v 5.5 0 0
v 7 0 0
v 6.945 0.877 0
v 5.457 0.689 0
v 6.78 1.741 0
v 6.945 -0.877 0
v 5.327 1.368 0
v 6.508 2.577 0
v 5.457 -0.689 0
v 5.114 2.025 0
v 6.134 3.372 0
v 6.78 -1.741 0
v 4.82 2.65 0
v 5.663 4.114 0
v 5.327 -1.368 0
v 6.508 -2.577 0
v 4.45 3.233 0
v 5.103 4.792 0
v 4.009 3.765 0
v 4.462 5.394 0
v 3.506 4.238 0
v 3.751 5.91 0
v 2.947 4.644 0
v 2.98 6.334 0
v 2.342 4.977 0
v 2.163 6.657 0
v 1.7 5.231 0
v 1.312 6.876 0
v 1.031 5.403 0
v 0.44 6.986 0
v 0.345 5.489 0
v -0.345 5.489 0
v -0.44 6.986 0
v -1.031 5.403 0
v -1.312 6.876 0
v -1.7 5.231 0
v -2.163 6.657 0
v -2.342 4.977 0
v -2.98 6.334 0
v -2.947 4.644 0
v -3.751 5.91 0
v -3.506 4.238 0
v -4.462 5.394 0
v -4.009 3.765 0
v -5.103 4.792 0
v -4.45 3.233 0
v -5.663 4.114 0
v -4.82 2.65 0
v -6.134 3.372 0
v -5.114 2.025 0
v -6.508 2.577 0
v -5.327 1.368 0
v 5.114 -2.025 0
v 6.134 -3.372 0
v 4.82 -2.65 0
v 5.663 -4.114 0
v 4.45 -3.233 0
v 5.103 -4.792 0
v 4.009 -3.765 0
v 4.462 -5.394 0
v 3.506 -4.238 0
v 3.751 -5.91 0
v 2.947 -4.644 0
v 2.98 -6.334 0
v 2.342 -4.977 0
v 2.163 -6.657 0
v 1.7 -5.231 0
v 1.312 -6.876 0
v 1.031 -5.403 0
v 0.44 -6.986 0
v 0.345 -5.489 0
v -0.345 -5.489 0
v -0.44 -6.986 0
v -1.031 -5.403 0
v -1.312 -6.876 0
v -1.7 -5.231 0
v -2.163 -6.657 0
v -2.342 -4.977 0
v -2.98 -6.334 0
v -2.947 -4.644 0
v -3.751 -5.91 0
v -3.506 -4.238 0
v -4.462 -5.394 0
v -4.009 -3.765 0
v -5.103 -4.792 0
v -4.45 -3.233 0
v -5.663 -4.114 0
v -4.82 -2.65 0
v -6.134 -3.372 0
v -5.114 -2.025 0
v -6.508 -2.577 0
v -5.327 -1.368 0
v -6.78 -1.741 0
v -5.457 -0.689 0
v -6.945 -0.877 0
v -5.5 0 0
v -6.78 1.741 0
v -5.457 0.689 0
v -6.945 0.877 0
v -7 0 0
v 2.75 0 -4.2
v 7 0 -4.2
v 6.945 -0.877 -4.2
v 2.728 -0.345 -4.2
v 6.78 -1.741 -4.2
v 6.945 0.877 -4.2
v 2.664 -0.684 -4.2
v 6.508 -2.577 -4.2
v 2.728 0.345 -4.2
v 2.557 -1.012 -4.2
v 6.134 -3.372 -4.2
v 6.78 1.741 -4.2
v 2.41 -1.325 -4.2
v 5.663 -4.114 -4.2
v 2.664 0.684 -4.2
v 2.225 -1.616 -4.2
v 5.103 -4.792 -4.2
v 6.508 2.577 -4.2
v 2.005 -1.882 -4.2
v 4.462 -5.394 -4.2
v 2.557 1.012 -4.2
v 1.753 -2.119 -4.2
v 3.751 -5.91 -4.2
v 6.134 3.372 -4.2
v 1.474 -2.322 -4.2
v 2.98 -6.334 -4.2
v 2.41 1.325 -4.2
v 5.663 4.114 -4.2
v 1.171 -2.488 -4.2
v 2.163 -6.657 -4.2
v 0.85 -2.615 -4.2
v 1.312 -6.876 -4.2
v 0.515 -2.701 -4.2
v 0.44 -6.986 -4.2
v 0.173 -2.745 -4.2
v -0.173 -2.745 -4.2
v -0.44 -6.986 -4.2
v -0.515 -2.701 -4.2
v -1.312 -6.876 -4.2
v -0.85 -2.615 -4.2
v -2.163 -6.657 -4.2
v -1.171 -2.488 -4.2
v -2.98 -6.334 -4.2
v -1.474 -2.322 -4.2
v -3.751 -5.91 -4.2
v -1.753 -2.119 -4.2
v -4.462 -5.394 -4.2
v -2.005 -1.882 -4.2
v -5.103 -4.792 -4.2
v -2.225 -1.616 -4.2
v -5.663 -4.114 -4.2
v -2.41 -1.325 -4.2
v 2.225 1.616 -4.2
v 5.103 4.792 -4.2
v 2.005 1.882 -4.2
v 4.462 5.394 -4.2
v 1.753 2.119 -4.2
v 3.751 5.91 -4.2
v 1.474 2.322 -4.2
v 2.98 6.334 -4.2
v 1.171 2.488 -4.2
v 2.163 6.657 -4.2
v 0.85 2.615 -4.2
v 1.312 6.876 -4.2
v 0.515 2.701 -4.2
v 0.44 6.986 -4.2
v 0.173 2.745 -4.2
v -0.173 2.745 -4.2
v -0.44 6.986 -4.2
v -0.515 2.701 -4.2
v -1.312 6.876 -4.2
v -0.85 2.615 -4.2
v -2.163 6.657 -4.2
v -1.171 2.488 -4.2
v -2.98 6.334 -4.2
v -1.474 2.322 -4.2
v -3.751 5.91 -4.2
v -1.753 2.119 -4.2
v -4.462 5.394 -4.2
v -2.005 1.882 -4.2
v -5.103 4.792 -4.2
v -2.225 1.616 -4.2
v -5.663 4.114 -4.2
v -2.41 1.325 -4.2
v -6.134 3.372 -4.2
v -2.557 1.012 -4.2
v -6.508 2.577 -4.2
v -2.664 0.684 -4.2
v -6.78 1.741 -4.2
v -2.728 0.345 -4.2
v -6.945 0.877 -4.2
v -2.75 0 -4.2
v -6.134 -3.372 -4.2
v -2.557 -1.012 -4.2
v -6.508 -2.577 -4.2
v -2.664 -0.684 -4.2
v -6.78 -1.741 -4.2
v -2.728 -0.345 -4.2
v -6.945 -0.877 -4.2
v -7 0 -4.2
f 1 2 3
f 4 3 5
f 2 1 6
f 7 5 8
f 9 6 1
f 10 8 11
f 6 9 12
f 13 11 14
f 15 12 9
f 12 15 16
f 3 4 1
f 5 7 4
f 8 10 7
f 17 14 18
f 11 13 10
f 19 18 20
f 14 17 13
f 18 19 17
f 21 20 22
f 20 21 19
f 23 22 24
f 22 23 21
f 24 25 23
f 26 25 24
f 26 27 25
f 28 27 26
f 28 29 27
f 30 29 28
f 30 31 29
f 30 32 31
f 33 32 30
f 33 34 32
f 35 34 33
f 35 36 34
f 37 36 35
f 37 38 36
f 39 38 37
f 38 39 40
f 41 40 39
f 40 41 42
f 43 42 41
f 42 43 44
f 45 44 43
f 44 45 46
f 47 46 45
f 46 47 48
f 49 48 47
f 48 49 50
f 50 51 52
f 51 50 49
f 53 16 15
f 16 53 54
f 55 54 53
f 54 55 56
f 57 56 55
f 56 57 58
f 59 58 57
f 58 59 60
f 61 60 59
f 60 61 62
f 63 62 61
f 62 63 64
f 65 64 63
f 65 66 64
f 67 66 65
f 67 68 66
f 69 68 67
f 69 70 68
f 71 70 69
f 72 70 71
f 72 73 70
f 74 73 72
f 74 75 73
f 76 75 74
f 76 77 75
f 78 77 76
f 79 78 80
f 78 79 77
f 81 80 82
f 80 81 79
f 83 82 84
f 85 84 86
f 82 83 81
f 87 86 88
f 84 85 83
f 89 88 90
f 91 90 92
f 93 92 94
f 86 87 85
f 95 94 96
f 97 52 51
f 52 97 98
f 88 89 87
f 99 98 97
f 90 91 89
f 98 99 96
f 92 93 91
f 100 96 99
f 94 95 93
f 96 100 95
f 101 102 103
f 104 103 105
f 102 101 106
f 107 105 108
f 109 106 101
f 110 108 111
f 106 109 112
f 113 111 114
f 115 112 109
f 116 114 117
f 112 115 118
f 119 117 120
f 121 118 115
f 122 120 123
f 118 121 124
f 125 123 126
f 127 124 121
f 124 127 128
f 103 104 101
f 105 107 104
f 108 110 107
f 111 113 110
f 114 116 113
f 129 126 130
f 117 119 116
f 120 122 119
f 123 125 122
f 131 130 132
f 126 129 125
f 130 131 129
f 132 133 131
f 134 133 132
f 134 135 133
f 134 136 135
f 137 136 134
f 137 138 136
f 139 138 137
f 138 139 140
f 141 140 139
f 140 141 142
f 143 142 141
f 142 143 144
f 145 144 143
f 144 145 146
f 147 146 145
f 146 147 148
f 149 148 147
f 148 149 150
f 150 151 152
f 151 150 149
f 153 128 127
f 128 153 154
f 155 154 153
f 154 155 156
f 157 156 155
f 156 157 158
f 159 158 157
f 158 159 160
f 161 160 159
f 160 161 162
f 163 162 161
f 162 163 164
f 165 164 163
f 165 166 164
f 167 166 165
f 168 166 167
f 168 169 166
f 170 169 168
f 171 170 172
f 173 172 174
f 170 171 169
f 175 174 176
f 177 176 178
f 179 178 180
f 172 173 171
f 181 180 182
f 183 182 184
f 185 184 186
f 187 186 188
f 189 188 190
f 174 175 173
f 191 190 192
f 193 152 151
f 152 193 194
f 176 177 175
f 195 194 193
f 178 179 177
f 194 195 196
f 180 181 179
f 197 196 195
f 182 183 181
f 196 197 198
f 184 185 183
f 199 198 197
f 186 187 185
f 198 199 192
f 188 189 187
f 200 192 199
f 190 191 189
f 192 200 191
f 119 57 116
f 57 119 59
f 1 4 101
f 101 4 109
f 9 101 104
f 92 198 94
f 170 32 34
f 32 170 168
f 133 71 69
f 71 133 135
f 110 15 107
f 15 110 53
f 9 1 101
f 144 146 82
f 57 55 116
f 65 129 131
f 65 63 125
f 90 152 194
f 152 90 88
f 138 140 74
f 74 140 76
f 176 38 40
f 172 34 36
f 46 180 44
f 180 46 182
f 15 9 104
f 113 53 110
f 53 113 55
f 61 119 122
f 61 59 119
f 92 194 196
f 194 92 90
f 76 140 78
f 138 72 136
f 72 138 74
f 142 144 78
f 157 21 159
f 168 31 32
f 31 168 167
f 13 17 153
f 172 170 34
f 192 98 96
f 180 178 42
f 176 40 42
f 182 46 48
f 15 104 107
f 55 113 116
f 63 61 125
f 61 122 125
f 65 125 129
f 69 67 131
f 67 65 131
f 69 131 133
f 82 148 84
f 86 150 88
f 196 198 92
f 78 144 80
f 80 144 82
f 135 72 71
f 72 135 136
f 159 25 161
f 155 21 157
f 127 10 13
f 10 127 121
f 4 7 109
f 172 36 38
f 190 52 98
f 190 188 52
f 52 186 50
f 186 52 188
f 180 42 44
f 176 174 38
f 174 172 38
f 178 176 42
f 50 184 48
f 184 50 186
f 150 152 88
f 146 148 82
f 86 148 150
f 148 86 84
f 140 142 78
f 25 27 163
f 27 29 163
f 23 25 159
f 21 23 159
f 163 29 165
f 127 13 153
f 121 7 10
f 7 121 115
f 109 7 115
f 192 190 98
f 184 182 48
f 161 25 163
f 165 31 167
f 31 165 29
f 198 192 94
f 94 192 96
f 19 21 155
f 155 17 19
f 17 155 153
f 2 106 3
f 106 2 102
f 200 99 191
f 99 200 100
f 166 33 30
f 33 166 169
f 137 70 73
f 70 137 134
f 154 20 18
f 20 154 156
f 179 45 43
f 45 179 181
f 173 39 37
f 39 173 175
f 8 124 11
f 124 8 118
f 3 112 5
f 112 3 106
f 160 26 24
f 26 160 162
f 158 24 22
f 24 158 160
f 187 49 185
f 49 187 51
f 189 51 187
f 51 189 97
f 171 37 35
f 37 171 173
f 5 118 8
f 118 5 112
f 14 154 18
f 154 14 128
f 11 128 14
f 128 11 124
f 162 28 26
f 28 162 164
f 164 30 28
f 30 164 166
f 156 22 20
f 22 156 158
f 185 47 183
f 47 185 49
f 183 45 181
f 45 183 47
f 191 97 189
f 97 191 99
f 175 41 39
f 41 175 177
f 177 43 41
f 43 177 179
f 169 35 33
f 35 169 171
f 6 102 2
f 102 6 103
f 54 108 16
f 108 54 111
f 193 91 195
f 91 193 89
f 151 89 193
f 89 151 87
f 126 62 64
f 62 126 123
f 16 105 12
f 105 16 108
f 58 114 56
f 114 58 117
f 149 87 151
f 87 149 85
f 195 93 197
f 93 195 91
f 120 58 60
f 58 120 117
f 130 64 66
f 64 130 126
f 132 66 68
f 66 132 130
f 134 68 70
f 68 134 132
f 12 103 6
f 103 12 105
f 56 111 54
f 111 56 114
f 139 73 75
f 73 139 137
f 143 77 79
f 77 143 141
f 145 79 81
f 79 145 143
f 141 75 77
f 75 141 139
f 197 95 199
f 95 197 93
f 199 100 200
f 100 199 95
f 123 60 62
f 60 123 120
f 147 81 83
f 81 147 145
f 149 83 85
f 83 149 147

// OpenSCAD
$fn = 50;


difference() {
	union() {
		translate(v = [0, 0, -4.2000000000]) {
			cylinder(h = 4.2000000000, r = 7.0000000000);
		}
	}
	union() {
		translate(v = [0, 0, 0]) {
			rotate(a = [0, 0, 0]) {
				difference() {
					union() {
						translate(v = [0, 0, -4.2000000000]) {
							cylinder(h = 4.2000000000, r = 2.2500000000);
						}
						translate(v = [0, 0, -4.2000000000]) {
							cylinder(h = 4.2000000000, r1 = 2.7500000000, r2 = 5.5000000000);
						}
						translate(v = [0, 0, -4.2000000000]) {
							cylinder(h = 4.2000000000, r = 2.7500000000);
						}
						translate(v = [0, 0, -4.2000000000]) {
							cylinder(h = 4.2000000000, r = 2.2500000000);
						}
					}
					union();
				}
			}
		}
	}
}
